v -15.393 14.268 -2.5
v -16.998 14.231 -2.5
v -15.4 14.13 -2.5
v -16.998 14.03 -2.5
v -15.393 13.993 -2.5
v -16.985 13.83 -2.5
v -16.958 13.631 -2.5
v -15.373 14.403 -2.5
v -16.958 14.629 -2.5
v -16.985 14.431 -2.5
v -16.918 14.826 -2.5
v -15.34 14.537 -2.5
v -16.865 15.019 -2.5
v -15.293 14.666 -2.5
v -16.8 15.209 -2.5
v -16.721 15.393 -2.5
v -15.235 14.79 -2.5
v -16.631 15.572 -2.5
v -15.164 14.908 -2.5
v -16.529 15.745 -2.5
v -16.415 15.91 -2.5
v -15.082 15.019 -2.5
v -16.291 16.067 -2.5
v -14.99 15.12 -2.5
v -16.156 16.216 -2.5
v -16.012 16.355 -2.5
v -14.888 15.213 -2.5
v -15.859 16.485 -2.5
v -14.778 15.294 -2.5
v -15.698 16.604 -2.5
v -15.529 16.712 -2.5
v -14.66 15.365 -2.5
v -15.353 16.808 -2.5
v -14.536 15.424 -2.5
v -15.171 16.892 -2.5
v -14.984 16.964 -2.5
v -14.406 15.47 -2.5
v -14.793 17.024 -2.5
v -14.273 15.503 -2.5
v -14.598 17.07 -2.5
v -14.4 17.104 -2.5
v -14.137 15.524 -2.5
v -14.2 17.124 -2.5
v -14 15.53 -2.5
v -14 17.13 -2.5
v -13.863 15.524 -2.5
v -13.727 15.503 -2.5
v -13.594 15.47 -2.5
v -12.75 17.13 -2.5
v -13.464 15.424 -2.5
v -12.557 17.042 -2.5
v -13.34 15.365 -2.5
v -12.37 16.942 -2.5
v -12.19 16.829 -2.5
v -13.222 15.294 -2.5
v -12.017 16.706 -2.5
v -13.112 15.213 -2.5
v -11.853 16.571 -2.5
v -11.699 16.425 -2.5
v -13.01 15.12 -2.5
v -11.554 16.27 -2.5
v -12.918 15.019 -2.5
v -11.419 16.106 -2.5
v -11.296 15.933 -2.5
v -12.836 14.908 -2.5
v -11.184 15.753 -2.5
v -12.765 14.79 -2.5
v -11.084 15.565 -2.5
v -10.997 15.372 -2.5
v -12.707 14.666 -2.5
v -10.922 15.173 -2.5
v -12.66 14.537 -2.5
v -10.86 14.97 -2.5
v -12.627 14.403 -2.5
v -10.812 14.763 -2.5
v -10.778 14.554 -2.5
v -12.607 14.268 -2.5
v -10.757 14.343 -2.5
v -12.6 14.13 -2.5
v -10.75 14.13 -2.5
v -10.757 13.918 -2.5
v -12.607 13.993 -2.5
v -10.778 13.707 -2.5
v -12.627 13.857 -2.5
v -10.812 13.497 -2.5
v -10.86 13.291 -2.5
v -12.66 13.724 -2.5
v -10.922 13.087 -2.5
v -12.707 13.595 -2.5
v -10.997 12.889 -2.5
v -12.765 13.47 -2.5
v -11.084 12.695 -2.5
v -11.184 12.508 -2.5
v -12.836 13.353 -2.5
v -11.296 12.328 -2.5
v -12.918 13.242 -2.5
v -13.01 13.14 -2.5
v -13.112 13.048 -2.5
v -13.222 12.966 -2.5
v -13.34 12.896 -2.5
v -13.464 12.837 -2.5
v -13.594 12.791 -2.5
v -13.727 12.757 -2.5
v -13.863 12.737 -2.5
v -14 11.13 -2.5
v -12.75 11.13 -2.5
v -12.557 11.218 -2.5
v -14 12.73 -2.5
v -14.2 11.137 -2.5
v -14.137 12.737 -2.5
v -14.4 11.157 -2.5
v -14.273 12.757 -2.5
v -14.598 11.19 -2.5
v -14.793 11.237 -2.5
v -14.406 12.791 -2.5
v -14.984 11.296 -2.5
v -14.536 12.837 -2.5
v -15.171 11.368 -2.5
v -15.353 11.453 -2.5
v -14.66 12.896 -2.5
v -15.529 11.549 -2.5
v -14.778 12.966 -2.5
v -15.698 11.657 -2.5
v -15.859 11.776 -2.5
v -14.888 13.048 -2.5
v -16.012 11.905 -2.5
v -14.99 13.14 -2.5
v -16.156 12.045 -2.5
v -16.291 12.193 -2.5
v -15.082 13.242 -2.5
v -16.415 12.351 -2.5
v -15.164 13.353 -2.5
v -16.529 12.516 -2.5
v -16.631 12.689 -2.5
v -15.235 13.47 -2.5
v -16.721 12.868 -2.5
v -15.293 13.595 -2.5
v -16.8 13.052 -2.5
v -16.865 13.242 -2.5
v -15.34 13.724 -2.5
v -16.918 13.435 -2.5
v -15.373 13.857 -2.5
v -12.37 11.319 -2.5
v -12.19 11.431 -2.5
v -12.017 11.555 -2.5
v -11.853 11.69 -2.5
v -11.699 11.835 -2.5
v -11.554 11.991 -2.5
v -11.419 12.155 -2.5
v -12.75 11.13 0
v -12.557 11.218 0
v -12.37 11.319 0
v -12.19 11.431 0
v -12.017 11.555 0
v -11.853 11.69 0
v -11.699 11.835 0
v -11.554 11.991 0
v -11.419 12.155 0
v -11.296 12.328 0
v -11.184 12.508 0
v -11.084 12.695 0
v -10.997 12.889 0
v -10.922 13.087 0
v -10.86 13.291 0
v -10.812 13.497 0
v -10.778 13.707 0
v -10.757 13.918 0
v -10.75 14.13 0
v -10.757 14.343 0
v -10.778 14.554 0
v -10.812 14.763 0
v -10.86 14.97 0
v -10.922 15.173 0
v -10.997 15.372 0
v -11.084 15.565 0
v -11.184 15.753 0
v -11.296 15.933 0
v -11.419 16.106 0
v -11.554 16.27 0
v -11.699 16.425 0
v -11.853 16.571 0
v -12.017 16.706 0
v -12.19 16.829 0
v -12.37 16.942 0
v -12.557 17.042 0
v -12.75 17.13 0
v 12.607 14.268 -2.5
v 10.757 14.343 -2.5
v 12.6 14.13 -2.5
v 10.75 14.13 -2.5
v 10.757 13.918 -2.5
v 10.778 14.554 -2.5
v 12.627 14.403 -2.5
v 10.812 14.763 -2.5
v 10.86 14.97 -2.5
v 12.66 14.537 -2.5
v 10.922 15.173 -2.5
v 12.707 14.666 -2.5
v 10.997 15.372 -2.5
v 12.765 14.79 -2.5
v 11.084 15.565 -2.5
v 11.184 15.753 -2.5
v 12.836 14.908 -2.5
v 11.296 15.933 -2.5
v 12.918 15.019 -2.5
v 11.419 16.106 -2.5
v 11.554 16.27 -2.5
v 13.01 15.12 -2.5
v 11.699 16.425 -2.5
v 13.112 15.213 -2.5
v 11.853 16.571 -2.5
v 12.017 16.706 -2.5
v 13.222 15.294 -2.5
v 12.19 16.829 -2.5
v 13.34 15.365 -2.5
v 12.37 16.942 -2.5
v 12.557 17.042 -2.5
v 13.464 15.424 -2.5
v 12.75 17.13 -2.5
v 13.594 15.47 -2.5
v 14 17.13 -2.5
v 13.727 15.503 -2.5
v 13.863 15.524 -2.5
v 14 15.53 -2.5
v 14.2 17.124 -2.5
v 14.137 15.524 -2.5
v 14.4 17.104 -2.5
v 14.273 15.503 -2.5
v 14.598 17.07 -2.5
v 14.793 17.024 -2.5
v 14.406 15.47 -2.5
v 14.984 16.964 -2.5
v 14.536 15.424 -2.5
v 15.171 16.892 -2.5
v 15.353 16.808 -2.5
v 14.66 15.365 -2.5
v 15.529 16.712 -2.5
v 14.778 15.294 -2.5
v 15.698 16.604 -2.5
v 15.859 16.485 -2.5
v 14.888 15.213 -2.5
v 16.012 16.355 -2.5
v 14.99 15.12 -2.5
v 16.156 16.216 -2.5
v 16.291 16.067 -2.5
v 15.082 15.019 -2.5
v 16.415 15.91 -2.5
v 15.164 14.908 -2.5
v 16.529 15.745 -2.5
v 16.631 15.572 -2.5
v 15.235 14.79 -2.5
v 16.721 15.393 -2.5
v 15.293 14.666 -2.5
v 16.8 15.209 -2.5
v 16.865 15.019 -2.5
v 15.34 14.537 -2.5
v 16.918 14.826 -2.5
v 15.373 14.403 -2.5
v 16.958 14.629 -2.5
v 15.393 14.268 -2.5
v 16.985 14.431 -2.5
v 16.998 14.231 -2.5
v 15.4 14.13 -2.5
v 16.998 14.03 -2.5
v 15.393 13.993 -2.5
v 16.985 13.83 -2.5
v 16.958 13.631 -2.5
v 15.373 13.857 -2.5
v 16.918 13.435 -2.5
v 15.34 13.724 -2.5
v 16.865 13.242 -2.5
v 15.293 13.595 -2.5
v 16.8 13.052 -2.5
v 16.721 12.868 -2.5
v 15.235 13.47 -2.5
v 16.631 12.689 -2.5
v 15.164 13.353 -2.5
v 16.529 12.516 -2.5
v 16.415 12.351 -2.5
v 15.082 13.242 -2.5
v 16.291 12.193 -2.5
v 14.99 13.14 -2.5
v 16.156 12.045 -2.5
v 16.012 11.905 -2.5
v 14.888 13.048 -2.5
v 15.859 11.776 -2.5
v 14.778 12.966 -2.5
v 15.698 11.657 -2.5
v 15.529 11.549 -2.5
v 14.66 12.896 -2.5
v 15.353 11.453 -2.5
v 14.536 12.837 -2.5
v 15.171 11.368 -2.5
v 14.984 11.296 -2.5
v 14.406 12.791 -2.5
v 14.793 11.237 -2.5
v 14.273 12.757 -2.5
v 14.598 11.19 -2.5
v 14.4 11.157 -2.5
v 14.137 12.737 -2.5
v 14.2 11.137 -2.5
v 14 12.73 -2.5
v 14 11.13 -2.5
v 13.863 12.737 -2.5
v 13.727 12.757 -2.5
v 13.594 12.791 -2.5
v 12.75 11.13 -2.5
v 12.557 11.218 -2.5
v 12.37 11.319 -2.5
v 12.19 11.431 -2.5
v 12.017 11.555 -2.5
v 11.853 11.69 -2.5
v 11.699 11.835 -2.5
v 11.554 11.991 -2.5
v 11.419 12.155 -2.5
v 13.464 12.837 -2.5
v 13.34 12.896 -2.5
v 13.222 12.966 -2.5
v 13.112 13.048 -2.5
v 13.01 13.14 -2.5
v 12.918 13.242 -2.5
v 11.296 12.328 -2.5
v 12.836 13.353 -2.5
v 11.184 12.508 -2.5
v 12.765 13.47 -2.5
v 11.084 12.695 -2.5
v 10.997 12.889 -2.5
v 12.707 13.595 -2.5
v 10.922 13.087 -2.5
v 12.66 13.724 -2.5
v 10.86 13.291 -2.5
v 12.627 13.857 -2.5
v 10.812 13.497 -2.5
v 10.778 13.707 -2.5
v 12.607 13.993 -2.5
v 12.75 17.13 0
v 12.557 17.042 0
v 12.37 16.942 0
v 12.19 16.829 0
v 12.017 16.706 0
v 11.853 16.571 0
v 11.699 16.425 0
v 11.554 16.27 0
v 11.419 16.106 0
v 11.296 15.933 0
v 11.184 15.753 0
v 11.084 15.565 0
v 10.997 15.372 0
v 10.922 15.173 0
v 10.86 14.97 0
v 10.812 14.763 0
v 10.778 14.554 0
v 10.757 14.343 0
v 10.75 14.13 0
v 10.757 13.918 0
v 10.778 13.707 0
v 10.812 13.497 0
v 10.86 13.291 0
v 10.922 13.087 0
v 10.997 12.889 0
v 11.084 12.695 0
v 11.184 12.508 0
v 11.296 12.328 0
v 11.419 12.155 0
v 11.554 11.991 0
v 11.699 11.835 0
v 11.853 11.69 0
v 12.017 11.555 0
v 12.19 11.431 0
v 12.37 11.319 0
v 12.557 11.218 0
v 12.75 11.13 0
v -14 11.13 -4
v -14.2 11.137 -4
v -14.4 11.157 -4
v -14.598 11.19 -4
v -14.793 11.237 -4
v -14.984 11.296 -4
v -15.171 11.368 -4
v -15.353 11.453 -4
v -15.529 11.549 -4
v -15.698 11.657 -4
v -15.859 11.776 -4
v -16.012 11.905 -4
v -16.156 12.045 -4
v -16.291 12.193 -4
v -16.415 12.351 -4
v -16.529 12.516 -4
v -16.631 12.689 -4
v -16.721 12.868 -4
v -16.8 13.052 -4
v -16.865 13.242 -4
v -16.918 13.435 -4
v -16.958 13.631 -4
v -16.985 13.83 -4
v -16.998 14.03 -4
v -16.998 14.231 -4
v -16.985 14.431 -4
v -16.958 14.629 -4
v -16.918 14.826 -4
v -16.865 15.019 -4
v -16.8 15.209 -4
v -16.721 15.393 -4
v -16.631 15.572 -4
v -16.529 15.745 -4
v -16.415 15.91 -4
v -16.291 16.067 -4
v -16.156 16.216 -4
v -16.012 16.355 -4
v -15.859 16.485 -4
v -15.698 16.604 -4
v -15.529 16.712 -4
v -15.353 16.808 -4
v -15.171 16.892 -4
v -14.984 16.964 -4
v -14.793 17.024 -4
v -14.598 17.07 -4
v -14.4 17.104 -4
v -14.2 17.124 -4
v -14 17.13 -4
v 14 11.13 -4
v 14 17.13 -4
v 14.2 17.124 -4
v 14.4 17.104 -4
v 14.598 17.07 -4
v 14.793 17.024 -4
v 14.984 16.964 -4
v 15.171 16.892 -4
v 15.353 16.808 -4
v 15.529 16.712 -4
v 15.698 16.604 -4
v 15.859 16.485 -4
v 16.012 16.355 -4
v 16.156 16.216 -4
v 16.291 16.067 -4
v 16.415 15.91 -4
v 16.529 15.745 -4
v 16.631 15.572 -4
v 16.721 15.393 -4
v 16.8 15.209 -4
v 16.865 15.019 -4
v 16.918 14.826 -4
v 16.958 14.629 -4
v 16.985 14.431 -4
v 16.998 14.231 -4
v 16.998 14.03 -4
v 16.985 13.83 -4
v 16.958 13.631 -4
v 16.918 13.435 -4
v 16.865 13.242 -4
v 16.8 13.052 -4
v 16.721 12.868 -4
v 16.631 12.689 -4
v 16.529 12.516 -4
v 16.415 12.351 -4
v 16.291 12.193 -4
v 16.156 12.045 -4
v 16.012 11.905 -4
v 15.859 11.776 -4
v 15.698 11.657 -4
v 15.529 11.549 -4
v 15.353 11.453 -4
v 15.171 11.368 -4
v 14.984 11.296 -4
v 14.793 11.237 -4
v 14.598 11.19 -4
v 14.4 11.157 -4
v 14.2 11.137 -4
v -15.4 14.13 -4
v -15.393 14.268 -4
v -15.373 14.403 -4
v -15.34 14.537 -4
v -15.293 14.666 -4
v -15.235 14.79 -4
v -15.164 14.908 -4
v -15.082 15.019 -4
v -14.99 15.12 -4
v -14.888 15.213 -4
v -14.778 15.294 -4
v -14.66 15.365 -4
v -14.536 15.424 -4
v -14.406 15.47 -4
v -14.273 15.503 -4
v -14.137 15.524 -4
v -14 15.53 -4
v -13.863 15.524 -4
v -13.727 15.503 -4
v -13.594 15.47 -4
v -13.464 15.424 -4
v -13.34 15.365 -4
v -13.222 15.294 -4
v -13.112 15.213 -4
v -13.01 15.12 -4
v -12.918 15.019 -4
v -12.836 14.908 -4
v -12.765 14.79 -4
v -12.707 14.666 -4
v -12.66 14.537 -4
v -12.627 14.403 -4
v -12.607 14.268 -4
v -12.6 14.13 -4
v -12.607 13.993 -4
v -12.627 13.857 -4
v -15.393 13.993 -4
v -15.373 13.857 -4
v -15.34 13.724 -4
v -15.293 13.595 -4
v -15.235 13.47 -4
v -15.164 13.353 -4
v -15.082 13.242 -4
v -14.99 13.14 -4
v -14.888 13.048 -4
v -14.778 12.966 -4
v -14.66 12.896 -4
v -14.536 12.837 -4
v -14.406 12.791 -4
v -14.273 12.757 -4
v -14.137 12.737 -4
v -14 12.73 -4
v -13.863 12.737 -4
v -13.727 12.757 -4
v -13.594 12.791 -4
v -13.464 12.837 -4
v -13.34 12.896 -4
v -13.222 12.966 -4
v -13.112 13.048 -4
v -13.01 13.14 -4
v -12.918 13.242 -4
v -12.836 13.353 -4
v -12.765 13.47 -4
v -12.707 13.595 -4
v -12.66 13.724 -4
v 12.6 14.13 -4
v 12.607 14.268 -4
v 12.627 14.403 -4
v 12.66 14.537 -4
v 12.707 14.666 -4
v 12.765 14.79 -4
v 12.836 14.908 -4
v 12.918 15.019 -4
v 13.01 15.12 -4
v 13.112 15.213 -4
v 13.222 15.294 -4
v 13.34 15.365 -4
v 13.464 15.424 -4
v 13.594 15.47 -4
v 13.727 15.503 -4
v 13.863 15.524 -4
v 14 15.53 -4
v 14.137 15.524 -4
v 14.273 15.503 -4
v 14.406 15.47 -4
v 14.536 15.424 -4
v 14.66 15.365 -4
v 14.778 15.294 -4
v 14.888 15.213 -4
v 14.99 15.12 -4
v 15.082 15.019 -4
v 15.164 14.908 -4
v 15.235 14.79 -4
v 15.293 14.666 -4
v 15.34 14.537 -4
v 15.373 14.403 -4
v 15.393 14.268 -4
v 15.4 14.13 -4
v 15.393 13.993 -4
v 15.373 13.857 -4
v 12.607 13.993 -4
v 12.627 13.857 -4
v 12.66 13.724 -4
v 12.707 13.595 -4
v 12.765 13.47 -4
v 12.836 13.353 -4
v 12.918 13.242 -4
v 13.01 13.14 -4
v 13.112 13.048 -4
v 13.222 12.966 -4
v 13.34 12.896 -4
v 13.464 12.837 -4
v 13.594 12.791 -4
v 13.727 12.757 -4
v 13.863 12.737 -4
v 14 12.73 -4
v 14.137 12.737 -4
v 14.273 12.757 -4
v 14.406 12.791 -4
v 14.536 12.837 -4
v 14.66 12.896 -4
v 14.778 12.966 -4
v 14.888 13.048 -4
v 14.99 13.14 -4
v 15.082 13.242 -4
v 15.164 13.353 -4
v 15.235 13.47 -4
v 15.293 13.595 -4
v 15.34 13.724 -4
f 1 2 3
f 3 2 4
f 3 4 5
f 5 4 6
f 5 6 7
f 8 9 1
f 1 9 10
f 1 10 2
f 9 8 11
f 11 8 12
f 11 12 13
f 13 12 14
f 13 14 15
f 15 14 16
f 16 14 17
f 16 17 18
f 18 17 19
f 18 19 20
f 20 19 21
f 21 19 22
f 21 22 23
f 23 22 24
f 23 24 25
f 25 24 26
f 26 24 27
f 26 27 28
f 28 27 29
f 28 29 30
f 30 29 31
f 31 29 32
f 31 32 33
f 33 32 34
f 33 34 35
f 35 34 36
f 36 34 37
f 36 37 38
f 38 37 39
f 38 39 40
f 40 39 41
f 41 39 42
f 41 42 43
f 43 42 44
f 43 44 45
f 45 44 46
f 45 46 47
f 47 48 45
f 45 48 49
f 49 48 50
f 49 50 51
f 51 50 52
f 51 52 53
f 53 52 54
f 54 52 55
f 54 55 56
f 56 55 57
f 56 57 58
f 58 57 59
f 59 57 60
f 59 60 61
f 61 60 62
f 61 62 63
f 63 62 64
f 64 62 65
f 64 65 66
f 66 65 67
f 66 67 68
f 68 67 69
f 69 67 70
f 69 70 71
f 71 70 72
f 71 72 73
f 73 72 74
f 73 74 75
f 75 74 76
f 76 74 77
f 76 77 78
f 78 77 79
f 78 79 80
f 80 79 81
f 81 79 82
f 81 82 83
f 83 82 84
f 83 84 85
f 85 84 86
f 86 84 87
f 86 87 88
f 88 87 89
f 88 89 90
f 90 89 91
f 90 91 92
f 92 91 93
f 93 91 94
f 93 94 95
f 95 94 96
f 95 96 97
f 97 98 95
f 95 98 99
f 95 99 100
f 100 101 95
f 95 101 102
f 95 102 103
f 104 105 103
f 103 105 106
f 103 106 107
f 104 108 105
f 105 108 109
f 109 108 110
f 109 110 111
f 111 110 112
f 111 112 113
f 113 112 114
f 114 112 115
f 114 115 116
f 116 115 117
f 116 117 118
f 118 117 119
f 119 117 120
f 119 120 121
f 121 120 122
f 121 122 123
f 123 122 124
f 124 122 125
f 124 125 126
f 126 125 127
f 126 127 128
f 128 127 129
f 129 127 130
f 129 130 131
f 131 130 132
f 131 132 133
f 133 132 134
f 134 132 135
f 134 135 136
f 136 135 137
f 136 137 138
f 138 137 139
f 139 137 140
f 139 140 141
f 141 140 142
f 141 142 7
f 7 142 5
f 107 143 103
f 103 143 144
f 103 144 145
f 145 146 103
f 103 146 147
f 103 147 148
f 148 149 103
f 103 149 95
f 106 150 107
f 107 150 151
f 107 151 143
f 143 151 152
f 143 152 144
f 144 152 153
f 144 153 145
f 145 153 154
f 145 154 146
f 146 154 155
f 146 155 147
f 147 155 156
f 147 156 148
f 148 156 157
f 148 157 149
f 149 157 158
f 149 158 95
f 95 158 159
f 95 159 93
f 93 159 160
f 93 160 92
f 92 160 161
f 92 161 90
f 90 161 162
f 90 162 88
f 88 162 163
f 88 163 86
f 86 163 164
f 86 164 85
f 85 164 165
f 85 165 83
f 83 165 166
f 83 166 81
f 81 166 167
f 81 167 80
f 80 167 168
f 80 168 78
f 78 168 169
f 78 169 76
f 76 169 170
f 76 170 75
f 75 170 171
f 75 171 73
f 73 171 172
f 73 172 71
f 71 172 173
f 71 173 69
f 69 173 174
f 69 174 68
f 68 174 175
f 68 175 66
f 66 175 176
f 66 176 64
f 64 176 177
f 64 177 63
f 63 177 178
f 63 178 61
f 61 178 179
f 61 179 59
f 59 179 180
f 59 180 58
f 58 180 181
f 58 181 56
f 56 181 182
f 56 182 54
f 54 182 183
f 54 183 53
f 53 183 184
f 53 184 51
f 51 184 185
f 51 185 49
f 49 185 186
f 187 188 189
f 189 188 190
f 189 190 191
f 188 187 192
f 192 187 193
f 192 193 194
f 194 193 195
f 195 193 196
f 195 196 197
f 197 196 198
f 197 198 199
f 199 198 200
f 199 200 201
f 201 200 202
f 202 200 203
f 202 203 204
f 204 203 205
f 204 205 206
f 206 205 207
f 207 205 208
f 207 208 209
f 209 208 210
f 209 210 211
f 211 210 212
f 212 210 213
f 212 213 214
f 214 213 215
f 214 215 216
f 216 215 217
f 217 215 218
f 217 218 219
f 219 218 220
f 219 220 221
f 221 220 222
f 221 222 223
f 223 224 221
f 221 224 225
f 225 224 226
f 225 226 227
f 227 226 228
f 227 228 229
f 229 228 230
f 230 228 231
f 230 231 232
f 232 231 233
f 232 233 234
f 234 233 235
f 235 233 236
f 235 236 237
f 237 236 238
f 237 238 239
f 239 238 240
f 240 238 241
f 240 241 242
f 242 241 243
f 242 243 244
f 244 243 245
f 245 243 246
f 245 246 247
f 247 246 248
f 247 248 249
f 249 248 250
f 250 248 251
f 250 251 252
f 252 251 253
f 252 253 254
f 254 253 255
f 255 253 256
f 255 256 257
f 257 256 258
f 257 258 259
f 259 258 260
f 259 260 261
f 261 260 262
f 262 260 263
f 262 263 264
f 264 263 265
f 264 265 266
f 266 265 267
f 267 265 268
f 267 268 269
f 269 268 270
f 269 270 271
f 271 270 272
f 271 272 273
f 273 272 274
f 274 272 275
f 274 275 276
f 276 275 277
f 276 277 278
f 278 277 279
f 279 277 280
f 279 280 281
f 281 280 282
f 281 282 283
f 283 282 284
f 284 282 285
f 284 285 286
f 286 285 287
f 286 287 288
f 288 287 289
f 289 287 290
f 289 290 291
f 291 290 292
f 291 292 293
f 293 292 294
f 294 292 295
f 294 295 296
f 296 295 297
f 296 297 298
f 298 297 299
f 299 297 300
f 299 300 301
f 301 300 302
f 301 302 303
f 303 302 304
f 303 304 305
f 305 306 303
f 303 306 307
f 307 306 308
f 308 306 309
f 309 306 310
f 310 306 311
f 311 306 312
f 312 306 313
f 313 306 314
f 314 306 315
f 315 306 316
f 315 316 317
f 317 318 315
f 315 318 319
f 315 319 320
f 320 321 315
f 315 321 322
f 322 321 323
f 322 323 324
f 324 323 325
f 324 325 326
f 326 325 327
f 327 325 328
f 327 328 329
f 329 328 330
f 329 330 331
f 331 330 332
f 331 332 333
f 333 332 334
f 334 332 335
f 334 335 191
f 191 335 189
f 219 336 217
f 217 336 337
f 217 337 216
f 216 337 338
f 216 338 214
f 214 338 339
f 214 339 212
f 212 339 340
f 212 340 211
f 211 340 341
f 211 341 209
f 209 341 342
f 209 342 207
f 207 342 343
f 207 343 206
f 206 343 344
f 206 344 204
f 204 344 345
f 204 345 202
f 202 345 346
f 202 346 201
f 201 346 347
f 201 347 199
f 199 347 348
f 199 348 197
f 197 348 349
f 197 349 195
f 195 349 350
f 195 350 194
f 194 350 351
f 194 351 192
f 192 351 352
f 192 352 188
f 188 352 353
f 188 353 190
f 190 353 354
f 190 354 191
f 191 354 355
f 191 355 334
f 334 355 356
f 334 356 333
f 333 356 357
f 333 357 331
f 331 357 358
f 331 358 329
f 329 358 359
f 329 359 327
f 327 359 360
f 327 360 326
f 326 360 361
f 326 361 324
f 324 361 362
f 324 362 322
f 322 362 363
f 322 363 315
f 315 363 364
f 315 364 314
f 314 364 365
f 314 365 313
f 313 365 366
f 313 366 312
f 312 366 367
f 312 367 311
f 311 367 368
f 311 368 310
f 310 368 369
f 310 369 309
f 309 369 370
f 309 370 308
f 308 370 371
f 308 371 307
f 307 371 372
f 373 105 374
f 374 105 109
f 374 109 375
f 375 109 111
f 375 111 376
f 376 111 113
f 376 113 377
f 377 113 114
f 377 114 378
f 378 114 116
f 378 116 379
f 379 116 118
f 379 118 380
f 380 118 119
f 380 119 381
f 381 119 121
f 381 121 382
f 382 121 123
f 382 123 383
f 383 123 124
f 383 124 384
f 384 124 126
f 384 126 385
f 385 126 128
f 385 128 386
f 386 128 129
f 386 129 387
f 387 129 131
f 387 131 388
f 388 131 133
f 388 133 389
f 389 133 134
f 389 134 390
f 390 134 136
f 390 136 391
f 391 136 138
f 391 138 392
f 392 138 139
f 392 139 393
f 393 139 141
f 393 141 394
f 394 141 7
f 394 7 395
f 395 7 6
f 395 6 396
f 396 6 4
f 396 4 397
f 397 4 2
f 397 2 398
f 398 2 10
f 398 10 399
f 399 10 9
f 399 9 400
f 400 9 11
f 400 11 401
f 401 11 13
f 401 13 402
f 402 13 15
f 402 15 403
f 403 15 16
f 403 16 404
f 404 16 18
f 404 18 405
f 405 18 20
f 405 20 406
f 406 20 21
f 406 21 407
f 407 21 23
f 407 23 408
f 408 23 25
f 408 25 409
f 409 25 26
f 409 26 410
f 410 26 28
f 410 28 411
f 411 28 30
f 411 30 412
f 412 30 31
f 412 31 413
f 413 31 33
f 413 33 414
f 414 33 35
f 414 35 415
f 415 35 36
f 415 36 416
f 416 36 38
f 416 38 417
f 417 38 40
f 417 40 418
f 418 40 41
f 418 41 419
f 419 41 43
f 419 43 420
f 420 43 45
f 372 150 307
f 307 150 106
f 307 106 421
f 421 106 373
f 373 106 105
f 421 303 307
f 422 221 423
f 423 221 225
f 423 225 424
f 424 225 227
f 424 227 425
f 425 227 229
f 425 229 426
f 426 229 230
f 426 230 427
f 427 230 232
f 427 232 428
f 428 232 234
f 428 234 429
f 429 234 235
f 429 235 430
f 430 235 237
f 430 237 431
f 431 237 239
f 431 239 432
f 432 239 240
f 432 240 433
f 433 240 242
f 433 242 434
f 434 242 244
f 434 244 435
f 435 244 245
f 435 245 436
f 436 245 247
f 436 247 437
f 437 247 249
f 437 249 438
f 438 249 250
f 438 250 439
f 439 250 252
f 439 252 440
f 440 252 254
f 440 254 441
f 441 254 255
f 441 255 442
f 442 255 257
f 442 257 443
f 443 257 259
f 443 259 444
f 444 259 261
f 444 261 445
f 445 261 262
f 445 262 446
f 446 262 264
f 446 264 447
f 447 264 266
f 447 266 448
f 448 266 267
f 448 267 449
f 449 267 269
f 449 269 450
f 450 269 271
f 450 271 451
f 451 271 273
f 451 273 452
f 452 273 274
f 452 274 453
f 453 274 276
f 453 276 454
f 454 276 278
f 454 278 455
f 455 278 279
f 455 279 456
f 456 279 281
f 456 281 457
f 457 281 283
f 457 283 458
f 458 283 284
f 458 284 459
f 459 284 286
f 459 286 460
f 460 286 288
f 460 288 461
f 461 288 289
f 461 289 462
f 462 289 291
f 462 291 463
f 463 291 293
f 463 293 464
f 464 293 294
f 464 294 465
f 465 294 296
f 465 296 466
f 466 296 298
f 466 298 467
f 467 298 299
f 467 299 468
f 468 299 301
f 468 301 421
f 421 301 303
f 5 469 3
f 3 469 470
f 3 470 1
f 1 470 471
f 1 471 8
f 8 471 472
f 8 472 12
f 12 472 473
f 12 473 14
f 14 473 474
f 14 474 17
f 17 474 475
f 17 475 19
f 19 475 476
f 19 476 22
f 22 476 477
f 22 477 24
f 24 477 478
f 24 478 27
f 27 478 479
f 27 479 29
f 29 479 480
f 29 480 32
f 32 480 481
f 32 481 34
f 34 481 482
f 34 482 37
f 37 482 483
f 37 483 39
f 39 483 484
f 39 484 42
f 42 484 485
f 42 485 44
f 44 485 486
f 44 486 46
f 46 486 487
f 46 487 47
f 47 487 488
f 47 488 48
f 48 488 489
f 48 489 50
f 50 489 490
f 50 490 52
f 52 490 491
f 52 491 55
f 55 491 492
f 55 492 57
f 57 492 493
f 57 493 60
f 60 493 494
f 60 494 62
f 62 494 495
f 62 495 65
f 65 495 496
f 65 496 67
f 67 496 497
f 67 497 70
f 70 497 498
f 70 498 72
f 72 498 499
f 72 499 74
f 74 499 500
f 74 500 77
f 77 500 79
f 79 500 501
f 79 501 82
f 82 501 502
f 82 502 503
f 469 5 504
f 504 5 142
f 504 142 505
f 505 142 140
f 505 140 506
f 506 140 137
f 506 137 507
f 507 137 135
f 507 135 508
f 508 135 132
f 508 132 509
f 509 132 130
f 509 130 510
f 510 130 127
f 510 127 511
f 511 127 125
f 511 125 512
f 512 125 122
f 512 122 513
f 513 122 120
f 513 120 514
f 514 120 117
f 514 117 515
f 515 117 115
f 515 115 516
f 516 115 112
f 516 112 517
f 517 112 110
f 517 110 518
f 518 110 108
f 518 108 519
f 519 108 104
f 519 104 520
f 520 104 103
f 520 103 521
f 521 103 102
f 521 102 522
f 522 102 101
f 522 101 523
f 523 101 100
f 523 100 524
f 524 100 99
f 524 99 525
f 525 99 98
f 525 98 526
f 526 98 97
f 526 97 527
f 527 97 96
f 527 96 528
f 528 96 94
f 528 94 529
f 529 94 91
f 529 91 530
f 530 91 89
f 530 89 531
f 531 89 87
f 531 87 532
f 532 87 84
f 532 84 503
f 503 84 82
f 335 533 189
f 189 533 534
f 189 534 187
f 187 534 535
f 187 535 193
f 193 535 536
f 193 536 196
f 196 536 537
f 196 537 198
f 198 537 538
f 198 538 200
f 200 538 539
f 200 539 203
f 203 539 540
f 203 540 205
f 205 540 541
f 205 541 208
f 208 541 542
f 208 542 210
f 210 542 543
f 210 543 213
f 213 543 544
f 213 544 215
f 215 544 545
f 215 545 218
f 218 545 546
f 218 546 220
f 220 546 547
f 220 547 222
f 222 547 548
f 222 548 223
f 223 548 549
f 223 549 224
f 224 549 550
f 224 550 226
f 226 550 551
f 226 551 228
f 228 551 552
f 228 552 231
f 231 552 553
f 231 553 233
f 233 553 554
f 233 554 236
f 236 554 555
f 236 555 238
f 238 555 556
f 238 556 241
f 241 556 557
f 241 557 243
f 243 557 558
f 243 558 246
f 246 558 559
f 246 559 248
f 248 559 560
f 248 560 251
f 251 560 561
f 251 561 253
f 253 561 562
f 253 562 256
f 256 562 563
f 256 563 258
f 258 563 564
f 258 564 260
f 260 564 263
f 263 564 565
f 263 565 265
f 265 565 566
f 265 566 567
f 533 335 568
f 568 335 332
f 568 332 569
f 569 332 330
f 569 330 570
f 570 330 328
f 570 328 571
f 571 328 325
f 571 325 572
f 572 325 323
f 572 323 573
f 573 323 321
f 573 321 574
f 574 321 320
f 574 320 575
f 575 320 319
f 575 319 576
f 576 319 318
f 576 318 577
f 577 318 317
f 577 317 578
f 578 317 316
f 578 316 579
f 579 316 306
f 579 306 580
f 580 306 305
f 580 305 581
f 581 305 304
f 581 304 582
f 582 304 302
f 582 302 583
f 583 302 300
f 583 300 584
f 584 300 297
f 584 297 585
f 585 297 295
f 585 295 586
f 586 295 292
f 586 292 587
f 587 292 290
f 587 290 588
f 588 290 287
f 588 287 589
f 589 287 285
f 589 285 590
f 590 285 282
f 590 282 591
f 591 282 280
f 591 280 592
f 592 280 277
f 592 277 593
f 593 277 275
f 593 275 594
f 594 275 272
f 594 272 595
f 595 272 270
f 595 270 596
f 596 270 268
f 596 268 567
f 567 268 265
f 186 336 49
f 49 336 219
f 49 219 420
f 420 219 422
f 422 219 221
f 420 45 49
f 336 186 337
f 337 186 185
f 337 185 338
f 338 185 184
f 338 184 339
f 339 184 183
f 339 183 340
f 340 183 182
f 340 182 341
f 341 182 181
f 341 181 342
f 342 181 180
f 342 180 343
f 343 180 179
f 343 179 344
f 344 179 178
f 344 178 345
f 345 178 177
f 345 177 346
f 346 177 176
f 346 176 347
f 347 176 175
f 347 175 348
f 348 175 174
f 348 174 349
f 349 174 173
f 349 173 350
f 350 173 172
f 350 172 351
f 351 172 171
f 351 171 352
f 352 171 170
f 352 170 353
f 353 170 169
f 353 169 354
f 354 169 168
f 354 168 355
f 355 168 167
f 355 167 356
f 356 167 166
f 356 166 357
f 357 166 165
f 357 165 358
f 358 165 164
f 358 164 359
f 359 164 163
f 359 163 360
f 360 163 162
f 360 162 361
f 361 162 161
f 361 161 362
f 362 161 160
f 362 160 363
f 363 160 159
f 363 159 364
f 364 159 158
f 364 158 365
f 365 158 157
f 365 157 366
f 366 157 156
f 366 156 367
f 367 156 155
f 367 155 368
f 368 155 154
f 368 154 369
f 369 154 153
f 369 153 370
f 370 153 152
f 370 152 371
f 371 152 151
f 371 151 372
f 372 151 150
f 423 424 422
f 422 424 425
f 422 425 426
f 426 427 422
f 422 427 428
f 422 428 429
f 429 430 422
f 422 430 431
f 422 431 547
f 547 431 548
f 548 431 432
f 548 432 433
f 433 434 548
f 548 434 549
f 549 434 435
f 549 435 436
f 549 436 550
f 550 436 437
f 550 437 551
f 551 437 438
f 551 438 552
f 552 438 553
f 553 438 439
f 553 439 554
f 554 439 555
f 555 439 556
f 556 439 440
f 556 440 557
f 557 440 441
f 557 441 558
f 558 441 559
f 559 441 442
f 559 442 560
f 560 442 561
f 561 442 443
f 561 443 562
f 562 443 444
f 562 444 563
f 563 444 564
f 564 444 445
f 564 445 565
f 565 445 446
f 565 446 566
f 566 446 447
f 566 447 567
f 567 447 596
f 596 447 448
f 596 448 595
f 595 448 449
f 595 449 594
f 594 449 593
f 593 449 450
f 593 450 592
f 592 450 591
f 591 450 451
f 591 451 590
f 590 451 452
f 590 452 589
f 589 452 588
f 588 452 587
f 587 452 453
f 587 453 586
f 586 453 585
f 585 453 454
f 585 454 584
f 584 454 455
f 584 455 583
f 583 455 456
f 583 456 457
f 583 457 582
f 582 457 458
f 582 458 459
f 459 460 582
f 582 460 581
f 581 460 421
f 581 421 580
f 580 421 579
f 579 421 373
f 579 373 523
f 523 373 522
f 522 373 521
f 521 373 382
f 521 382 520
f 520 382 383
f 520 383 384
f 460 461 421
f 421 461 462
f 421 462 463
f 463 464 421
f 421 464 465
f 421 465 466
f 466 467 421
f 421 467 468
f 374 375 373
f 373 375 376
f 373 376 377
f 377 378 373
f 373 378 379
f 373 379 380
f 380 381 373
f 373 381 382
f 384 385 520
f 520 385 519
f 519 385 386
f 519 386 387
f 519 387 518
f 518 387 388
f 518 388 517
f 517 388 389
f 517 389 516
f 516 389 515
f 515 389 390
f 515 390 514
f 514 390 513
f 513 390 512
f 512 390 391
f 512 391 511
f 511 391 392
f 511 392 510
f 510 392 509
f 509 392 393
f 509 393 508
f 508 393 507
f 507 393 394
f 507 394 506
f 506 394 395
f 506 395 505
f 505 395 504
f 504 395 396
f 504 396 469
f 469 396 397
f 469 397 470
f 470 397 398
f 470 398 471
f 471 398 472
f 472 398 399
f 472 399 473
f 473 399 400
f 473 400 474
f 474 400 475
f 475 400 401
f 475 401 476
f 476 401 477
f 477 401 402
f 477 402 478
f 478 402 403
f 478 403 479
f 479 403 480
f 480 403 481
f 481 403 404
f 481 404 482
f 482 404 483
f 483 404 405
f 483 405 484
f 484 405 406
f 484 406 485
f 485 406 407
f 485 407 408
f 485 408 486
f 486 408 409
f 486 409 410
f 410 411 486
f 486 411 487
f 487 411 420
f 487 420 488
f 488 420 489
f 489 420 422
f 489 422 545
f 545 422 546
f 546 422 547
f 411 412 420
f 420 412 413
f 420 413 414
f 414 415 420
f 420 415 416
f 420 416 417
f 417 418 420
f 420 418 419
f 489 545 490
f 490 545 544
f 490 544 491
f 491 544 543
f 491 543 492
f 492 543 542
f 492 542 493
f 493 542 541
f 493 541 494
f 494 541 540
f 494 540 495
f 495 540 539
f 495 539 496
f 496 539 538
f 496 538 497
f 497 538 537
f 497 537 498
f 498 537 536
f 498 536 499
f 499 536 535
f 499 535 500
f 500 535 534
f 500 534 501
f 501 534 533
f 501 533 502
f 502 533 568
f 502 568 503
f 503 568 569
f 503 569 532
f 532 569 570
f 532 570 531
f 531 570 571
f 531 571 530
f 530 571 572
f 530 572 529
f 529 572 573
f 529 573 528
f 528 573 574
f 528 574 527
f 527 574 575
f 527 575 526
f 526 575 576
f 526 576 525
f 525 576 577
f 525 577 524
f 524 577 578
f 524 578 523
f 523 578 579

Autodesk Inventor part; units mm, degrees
ref_plane "YZ Plane" through (0, 0, 0) normal (1, 0, 0) x (0, 1, 0)
ref_plane "XZ Plane" through (0, 0, 0) normal (0, 1, 0) x (-1, 0, 0)
ref_plane "XY Plane" through (0, 0, 0) normal (0, 0, 1) x (1, 0, 0)
ref_plane "Arbeitsebene1" through (0, 0, 0) normal (0, 0, 1) x (1, 0, 0)
sketch "Skizze1" plane through (0, 0, 0) normal (0, 0, 1) x (1, 0, 0)
  circle A0 centre (17.5021, -9.9999) radius 1.45 projected
  circle A1 centre (-17.4978, -9.9998) radius 1.45 projected
  circle A2 centre (-17.4979, 10.0001) radius 1.45 projected
  circle A3 centre (17.5021, 10.0001) radius 1.45 projected
  arc A4 (-9.5, 21.063) -> (-12.4584, 22.8184) centre (-11.5, 21.063) ccw projected
  arc A5 (-12.4584, 22.8184) -> (12.4584, 22.8184) centre (0, 0) ccw projected
  arc A6 (12.4584, 22.8184) -> (9.5, 21.063) centre (11.5, 21.063) ccw projected
  line L0 (9.5, 21.063) -> (9.5, 17.6304) projected
  line L1 (9.5, 17.6304) -> (14, 17.6304) projected
  arc A7 (14, 10.6304) -> (14, 17.6304) centre (14, 14.1304) ccw projected
  line L2 (14, 10.6304) -> (9.5, 10.6304) projected
  line L3 (9.5, 10.6304) -> (9.5, -9) projected
  line L4 (9.5, -9) -> (-9.5, -9) projected
  line L5 (-9.5, -9) -> (-9.5, 10.6304) projected
  line L6 (-9.5, 10.6304) -> (-14, 10.6304) projected
  arc A8 (-14, 17.6304) -> (-14, 10.6304) centre (-14, 14.1304) ccw projected
  line L7 (-14, 17.6304) -> (-9.5, 17.6304) projected
  line L8 (-9.5, 17.6304) -> (-9.5, 21.063) projected
  circle A9 centre (-14, 14.1304) radius 1.4 projected
  circle A10 centre (14, 14.1304) radius 1.4 projected
  line L9 (-14, 14.1304) -> (14, 14.1304) construction
  line L10 (-14, 11.1304) -> (14, 11.1304)
  line L11 (14, 17.1304) -> (-14, 17.1304)
  arc A11 (-14, 17.1304) -> (-14, 11.1304) centre (-14, 14.1304) ccw
  arc A12 (14, 11.1304) -> (14, 17.1304) centre (14, 14.1304) ccw
  point P0 (0, 14.1304)
  dimension "d0" = 6
extrude "Extrusion1" add sketch "Skizze1" against normal blind 4 contours A11 L11 A12 L10
sketch "Skizze2" plane through (0, 0, 0) normal (0, 0, 1) x (1, 0, 0)
  arc A0 (14, 11.1304) -> (14, 17.1304) centre (14, 14.1304) ccw projected
  line L0 (14, 17.1304) -> (-14, 17.1304) projected
  arc A1 (-14, 17.1304) -> (-14, 11.1304) centre (-14, 14.1304) ccw projected
  line L1 (-14, 11.1304) -> (14, 11.1304) projected
  circle A2 centre (14, 14.1304) radius 1.4 projected
  circle A3 centre (-14, 14.1304) radius 1.4 projected
  point P0 (0, 0)
hole "Bohrung1" at (-14, 14.1304, 0) at (14, 14.1304, 0) direction (0, 0, -1) diameter 2.8 depth 7 tip angle 118 counterbore diameter 6.5 counterbore depth 2.5
sketch "Skizze3" plane through (-14, 17.1304, -4) normal (0, 1, 0) x (1, 0, 0)
  line L0 (1.25, -1.5) -> (1.25, -4) projected
  line L1 (26.75, -4) -> (1.25, -4) projected
  line L2 (26.75, -4) -> (26.75, -1.5) projected
  line L3 (26.75, -1.5) -> (28, -1.5) projected
  line L4 (28, -1.5) -> (28, 0) projected
  line L5 (0, 0) -> (28, 0) projected
  line L6 (0, -1.5) -> (0, 0) projected
  line L7 (0, -1.5) -> (1.25, -1.5) projected
  line L8 (-22.3971, 2) -> (50.3971, 2)
  circle A0 centre (14, 2) radius 2
  point P0 (14, -4)
properties part number "Cableholder_Ikealamp"
